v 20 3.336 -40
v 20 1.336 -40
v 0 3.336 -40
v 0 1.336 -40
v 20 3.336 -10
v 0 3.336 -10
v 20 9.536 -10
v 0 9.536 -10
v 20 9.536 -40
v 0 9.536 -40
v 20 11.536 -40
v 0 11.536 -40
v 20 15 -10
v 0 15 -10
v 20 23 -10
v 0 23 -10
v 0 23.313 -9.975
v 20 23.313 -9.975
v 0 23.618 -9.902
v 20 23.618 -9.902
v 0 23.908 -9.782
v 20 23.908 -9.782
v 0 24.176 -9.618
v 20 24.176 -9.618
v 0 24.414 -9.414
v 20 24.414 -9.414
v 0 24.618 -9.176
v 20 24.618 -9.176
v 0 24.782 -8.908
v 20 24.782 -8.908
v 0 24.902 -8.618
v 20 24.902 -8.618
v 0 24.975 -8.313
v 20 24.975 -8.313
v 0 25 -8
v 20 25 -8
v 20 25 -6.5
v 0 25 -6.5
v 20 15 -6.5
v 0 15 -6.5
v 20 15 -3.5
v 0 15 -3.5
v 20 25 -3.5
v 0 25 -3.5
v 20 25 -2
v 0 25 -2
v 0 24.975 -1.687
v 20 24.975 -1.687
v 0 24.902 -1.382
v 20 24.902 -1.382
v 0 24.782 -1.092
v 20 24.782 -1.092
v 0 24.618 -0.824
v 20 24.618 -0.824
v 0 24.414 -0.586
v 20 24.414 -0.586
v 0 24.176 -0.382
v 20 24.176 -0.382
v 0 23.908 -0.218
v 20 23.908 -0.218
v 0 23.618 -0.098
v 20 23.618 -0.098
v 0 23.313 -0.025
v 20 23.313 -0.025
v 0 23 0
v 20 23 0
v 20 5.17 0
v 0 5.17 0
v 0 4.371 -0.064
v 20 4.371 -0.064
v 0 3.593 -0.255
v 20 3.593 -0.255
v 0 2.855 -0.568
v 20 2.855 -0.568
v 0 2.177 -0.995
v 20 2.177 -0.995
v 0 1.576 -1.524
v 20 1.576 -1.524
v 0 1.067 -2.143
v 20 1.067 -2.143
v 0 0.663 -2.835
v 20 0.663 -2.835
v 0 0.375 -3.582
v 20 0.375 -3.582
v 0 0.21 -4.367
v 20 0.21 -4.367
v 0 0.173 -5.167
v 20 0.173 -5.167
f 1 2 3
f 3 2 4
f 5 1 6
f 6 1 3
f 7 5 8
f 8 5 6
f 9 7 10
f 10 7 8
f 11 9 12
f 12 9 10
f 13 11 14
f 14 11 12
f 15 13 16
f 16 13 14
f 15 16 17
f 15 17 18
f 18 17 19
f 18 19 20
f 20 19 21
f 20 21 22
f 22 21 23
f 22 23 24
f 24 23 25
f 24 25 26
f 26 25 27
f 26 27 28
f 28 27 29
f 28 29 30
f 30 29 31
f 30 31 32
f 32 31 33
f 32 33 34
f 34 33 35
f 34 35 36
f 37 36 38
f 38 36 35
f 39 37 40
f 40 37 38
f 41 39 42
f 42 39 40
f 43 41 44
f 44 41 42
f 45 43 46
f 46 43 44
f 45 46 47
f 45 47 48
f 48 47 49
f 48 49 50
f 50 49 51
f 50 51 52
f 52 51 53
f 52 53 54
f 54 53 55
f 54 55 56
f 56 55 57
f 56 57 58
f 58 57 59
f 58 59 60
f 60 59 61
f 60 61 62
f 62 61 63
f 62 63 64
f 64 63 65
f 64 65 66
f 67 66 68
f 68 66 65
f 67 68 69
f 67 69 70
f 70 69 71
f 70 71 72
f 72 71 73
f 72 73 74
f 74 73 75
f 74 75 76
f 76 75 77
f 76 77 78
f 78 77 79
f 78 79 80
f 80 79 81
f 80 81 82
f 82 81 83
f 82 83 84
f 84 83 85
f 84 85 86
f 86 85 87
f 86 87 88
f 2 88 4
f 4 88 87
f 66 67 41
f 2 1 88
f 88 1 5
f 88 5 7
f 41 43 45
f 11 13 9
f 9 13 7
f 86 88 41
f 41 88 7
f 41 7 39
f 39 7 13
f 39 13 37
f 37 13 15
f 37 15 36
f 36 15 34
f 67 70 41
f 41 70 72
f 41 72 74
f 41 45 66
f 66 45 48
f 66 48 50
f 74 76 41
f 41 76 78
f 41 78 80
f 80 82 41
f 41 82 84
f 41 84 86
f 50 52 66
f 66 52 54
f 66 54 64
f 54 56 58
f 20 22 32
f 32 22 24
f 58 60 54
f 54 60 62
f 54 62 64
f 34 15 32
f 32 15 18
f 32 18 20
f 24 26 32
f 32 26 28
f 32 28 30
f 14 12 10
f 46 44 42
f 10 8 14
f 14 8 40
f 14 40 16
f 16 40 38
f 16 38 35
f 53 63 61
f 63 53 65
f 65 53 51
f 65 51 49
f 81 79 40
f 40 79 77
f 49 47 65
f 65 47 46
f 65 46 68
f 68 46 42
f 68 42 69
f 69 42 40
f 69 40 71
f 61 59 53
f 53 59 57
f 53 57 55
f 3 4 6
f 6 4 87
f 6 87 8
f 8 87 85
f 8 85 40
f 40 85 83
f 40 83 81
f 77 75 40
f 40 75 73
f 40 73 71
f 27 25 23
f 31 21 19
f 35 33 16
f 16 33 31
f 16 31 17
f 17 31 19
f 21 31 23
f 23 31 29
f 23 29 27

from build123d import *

# Parameters (mm, degrees)
BOSS_EXTRU_1_DEPTH = 20


with BuildPart() as part:
    # Esquisse1 → Boss.-Extru.1 (new body)
    with BuildSketch(Plane(origin=(0, 0, 0), x_dir=(0, 0, -1), z_dir=(1, 0, 0))):
        with BuildLine():
            Line((5.166852316, 0.172516338), (40, 1.335562371))
            Line((40, 1.335562371), (40, 3.335562371))
            Line((40, 3.335562371), (10, 3.335562371))
            Line((10, 3.335562371), (10, 9.535562371))
            Line((10, 9.535562371), (40, 9.535562371))
            Line((40, 9.535562371), (40, 11.535562371))
            Line((40, 11.535562371), (10, 15))
            Line((10, 15), (10, 23))
            ThreePointArc((10, 23), (9.414213562, 24.414213562), (8, 25))
            Line((8, 25), (6.5, 25))
            Line((6.5, 25), (6.5, 15))
            Line((6.5, 15), (3.5, 15))
            Line((3.5, 15), (3.5, 25))
            Line((3.5, 25), (2, 25))
            ThreePointArc((2, 25), (0.585786438, 24.414213562), (0, 23))
            Line((0, 23), (0, 15))
            Line((0, 15), (0, 5.169731593))
            ThreePointArc((0, 5.169731593), (1.523957824, 1.575690582), (5.166852316, 0.172516338))
        make_face()
    extrude(amount=BOSS_EXTRU_1_DEPTH)


solid = part.part
